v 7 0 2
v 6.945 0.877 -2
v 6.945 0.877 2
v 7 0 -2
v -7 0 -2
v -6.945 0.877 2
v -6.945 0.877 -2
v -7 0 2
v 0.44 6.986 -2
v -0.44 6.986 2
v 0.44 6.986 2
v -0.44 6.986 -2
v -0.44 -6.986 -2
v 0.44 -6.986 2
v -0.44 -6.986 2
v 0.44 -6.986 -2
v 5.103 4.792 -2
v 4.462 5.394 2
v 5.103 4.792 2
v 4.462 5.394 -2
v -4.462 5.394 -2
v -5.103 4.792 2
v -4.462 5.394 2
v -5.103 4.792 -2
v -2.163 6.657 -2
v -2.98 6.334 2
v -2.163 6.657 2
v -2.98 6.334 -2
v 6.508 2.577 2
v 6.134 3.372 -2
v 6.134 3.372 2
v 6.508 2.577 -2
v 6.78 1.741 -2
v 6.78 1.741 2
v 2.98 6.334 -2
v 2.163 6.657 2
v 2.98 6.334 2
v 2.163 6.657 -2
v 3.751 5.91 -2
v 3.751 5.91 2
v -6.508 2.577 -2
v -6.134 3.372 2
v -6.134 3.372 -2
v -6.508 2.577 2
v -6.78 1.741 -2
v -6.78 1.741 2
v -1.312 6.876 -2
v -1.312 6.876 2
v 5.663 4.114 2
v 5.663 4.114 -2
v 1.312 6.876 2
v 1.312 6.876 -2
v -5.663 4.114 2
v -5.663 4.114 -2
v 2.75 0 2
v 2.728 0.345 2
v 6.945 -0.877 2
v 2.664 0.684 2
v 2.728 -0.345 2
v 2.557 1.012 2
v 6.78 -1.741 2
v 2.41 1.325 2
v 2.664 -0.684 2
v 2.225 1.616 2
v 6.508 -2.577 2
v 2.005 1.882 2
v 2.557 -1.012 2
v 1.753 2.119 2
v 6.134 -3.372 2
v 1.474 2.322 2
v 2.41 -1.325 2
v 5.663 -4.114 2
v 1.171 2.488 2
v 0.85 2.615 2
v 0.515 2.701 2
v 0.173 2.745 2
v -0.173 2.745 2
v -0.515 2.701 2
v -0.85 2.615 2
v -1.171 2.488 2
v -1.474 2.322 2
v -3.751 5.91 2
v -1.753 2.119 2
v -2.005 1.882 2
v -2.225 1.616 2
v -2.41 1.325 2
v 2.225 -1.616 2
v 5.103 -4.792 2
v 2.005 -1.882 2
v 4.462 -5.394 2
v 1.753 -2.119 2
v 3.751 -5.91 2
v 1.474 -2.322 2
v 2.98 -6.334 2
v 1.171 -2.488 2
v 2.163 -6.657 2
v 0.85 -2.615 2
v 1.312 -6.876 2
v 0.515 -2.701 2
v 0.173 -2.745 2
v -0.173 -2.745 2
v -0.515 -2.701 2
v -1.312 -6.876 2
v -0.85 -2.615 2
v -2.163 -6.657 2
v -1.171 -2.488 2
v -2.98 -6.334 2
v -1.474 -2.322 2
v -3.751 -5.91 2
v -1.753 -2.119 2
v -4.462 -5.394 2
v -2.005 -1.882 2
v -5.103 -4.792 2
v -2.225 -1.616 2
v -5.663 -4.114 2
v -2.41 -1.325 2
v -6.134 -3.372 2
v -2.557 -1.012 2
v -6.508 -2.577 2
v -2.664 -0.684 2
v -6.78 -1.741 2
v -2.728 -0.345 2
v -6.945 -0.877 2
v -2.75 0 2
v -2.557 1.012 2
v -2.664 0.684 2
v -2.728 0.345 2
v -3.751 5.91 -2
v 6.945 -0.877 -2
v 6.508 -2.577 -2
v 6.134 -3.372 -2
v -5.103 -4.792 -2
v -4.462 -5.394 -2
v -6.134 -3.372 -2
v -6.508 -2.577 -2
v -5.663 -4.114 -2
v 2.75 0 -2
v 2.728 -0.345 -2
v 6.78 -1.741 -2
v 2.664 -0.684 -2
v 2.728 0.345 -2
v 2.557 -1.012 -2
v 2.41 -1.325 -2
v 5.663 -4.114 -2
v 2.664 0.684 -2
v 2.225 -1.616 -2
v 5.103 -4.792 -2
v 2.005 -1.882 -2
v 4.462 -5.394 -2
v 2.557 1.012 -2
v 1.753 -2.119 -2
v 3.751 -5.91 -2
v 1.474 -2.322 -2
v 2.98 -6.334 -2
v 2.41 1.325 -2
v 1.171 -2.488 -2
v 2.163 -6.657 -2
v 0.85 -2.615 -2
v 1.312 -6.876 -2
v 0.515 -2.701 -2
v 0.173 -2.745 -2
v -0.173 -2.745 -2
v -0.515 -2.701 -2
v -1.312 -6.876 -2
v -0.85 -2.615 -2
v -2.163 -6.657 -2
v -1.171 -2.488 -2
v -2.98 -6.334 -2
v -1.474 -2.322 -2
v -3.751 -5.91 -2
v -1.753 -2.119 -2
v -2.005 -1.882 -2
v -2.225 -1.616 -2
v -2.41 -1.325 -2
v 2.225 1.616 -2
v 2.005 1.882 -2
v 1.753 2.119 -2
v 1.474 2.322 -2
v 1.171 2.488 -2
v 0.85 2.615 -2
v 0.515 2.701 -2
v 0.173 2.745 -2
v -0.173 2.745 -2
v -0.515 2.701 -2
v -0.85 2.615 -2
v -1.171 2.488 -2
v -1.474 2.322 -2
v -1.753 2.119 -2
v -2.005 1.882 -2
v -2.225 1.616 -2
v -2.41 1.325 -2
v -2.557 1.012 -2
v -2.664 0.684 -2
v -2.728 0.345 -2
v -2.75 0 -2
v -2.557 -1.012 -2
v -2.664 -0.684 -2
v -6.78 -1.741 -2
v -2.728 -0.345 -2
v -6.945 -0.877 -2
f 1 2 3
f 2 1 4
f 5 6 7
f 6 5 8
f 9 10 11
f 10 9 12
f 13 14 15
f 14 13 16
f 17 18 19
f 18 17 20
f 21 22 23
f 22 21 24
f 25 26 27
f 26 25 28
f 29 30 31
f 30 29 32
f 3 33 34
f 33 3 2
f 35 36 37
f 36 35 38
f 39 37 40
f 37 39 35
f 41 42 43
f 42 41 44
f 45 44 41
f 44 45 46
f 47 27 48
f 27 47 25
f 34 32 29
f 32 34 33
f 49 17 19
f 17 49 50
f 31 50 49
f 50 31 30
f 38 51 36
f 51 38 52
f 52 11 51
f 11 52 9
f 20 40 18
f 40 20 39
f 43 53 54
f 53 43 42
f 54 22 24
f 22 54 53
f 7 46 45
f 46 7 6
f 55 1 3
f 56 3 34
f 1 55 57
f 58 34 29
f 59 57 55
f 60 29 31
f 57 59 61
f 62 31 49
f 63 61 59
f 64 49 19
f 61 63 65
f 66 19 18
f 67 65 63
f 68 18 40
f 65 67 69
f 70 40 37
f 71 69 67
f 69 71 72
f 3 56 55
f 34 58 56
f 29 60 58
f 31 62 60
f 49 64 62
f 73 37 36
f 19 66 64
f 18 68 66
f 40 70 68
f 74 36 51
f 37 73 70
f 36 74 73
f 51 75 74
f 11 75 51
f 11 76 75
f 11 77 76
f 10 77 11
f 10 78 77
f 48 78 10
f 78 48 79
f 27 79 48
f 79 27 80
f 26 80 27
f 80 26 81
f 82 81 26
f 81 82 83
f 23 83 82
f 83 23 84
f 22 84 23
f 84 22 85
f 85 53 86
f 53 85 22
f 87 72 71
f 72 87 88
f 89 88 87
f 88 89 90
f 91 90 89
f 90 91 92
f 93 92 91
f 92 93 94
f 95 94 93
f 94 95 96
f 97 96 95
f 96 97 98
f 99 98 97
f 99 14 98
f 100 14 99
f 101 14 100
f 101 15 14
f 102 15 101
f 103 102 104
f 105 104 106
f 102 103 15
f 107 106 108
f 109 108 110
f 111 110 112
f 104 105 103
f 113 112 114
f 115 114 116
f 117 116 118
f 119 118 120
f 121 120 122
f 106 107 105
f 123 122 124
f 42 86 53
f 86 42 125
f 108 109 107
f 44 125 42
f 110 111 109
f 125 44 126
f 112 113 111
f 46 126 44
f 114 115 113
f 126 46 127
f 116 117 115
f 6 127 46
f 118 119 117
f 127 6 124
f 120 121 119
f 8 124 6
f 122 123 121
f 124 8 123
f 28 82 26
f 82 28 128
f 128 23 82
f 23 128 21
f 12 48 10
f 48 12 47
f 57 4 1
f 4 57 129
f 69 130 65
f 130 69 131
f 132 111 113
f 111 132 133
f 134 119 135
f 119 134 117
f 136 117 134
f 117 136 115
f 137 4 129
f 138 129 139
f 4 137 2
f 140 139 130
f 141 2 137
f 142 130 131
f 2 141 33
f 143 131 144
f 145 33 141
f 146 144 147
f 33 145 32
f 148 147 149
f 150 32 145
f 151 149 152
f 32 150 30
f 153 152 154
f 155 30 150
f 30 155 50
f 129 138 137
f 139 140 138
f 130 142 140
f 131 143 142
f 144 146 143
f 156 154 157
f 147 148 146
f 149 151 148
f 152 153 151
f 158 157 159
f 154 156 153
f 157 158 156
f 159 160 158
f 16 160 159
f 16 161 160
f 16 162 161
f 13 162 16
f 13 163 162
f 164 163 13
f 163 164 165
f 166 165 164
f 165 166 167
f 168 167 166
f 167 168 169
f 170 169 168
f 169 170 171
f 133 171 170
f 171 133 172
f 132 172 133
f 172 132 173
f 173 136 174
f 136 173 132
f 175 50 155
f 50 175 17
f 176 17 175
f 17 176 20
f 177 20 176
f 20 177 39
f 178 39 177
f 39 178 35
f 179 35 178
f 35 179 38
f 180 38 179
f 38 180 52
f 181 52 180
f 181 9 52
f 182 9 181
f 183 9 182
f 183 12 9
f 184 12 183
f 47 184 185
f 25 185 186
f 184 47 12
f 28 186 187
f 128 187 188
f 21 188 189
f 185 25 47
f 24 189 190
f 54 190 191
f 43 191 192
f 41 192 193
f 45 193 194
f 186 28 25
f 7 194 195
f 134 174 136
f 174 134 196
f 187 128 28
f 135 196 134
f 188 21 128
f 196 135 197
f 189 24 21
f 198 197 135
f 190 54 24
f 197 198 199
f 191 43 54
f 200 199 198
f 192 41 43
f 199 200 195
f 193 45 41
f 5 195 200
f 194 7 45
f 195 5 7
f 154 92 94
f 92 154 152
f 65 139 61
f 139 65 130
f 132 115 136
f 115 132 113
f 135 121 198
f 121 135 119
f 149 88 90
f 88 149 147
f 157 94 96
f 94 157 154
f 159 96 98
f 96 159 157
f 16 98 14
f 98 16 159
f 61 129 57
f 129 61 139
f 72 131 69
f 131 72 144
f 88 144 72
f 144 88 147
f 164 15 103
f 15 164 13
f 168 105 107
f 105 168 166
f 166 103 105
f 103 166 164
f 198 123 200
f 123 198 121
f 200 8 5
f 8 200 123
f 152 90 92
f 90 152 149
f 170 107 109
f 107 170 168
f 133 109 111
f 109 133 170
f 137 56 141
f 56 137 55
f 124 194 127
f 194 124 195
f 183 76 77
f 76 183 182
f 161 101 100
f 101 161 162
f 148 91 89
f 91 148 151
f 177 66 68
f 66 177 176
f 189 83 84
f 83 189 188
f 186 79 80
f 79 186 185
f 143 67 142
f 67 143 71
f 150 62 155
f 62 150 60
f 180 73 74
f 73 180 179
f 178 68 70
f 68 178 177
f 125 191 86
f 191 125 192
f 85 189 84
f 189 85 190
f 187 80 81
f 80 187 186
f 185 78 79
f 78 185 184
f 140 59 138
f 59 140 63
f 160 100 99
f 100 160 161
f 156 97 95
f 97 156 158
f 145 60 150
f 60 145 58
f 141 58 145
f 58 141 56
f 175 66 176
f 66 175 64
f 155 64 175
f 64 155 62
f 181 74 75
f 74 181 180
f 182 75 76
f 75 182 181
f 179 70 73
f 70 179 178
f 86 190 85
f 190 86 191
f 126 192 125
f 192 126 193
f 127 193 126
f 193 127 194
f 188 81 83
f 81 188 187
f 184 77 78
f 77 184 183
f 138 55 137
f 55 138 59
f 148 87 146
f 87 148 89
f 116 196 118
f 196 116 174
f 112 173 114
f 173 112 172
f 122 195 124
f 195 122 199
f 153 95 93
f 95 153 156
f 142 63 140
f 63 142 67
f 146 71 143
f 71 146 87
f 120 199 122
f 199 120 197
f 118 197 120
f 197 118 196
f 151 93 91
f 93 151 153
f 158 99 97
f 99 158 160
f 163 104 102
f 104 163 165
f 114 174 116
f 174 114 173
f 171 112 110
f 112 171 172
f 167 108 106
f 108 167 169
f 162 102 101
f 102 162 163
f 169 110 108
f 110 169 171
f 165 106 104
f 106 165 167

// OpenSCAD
$fn = 50;


difference() {
	union() {
		translate(v = [0, 0, -2.0000000000]) {
			cylinder(h = 4, r = 7.0000000000);
		}
	}
	union() {
		translate(v = [0, 0, -100.0000000000]) {
			cylinder(h = 200, r = 2.7500000000);
		}
	}
}
